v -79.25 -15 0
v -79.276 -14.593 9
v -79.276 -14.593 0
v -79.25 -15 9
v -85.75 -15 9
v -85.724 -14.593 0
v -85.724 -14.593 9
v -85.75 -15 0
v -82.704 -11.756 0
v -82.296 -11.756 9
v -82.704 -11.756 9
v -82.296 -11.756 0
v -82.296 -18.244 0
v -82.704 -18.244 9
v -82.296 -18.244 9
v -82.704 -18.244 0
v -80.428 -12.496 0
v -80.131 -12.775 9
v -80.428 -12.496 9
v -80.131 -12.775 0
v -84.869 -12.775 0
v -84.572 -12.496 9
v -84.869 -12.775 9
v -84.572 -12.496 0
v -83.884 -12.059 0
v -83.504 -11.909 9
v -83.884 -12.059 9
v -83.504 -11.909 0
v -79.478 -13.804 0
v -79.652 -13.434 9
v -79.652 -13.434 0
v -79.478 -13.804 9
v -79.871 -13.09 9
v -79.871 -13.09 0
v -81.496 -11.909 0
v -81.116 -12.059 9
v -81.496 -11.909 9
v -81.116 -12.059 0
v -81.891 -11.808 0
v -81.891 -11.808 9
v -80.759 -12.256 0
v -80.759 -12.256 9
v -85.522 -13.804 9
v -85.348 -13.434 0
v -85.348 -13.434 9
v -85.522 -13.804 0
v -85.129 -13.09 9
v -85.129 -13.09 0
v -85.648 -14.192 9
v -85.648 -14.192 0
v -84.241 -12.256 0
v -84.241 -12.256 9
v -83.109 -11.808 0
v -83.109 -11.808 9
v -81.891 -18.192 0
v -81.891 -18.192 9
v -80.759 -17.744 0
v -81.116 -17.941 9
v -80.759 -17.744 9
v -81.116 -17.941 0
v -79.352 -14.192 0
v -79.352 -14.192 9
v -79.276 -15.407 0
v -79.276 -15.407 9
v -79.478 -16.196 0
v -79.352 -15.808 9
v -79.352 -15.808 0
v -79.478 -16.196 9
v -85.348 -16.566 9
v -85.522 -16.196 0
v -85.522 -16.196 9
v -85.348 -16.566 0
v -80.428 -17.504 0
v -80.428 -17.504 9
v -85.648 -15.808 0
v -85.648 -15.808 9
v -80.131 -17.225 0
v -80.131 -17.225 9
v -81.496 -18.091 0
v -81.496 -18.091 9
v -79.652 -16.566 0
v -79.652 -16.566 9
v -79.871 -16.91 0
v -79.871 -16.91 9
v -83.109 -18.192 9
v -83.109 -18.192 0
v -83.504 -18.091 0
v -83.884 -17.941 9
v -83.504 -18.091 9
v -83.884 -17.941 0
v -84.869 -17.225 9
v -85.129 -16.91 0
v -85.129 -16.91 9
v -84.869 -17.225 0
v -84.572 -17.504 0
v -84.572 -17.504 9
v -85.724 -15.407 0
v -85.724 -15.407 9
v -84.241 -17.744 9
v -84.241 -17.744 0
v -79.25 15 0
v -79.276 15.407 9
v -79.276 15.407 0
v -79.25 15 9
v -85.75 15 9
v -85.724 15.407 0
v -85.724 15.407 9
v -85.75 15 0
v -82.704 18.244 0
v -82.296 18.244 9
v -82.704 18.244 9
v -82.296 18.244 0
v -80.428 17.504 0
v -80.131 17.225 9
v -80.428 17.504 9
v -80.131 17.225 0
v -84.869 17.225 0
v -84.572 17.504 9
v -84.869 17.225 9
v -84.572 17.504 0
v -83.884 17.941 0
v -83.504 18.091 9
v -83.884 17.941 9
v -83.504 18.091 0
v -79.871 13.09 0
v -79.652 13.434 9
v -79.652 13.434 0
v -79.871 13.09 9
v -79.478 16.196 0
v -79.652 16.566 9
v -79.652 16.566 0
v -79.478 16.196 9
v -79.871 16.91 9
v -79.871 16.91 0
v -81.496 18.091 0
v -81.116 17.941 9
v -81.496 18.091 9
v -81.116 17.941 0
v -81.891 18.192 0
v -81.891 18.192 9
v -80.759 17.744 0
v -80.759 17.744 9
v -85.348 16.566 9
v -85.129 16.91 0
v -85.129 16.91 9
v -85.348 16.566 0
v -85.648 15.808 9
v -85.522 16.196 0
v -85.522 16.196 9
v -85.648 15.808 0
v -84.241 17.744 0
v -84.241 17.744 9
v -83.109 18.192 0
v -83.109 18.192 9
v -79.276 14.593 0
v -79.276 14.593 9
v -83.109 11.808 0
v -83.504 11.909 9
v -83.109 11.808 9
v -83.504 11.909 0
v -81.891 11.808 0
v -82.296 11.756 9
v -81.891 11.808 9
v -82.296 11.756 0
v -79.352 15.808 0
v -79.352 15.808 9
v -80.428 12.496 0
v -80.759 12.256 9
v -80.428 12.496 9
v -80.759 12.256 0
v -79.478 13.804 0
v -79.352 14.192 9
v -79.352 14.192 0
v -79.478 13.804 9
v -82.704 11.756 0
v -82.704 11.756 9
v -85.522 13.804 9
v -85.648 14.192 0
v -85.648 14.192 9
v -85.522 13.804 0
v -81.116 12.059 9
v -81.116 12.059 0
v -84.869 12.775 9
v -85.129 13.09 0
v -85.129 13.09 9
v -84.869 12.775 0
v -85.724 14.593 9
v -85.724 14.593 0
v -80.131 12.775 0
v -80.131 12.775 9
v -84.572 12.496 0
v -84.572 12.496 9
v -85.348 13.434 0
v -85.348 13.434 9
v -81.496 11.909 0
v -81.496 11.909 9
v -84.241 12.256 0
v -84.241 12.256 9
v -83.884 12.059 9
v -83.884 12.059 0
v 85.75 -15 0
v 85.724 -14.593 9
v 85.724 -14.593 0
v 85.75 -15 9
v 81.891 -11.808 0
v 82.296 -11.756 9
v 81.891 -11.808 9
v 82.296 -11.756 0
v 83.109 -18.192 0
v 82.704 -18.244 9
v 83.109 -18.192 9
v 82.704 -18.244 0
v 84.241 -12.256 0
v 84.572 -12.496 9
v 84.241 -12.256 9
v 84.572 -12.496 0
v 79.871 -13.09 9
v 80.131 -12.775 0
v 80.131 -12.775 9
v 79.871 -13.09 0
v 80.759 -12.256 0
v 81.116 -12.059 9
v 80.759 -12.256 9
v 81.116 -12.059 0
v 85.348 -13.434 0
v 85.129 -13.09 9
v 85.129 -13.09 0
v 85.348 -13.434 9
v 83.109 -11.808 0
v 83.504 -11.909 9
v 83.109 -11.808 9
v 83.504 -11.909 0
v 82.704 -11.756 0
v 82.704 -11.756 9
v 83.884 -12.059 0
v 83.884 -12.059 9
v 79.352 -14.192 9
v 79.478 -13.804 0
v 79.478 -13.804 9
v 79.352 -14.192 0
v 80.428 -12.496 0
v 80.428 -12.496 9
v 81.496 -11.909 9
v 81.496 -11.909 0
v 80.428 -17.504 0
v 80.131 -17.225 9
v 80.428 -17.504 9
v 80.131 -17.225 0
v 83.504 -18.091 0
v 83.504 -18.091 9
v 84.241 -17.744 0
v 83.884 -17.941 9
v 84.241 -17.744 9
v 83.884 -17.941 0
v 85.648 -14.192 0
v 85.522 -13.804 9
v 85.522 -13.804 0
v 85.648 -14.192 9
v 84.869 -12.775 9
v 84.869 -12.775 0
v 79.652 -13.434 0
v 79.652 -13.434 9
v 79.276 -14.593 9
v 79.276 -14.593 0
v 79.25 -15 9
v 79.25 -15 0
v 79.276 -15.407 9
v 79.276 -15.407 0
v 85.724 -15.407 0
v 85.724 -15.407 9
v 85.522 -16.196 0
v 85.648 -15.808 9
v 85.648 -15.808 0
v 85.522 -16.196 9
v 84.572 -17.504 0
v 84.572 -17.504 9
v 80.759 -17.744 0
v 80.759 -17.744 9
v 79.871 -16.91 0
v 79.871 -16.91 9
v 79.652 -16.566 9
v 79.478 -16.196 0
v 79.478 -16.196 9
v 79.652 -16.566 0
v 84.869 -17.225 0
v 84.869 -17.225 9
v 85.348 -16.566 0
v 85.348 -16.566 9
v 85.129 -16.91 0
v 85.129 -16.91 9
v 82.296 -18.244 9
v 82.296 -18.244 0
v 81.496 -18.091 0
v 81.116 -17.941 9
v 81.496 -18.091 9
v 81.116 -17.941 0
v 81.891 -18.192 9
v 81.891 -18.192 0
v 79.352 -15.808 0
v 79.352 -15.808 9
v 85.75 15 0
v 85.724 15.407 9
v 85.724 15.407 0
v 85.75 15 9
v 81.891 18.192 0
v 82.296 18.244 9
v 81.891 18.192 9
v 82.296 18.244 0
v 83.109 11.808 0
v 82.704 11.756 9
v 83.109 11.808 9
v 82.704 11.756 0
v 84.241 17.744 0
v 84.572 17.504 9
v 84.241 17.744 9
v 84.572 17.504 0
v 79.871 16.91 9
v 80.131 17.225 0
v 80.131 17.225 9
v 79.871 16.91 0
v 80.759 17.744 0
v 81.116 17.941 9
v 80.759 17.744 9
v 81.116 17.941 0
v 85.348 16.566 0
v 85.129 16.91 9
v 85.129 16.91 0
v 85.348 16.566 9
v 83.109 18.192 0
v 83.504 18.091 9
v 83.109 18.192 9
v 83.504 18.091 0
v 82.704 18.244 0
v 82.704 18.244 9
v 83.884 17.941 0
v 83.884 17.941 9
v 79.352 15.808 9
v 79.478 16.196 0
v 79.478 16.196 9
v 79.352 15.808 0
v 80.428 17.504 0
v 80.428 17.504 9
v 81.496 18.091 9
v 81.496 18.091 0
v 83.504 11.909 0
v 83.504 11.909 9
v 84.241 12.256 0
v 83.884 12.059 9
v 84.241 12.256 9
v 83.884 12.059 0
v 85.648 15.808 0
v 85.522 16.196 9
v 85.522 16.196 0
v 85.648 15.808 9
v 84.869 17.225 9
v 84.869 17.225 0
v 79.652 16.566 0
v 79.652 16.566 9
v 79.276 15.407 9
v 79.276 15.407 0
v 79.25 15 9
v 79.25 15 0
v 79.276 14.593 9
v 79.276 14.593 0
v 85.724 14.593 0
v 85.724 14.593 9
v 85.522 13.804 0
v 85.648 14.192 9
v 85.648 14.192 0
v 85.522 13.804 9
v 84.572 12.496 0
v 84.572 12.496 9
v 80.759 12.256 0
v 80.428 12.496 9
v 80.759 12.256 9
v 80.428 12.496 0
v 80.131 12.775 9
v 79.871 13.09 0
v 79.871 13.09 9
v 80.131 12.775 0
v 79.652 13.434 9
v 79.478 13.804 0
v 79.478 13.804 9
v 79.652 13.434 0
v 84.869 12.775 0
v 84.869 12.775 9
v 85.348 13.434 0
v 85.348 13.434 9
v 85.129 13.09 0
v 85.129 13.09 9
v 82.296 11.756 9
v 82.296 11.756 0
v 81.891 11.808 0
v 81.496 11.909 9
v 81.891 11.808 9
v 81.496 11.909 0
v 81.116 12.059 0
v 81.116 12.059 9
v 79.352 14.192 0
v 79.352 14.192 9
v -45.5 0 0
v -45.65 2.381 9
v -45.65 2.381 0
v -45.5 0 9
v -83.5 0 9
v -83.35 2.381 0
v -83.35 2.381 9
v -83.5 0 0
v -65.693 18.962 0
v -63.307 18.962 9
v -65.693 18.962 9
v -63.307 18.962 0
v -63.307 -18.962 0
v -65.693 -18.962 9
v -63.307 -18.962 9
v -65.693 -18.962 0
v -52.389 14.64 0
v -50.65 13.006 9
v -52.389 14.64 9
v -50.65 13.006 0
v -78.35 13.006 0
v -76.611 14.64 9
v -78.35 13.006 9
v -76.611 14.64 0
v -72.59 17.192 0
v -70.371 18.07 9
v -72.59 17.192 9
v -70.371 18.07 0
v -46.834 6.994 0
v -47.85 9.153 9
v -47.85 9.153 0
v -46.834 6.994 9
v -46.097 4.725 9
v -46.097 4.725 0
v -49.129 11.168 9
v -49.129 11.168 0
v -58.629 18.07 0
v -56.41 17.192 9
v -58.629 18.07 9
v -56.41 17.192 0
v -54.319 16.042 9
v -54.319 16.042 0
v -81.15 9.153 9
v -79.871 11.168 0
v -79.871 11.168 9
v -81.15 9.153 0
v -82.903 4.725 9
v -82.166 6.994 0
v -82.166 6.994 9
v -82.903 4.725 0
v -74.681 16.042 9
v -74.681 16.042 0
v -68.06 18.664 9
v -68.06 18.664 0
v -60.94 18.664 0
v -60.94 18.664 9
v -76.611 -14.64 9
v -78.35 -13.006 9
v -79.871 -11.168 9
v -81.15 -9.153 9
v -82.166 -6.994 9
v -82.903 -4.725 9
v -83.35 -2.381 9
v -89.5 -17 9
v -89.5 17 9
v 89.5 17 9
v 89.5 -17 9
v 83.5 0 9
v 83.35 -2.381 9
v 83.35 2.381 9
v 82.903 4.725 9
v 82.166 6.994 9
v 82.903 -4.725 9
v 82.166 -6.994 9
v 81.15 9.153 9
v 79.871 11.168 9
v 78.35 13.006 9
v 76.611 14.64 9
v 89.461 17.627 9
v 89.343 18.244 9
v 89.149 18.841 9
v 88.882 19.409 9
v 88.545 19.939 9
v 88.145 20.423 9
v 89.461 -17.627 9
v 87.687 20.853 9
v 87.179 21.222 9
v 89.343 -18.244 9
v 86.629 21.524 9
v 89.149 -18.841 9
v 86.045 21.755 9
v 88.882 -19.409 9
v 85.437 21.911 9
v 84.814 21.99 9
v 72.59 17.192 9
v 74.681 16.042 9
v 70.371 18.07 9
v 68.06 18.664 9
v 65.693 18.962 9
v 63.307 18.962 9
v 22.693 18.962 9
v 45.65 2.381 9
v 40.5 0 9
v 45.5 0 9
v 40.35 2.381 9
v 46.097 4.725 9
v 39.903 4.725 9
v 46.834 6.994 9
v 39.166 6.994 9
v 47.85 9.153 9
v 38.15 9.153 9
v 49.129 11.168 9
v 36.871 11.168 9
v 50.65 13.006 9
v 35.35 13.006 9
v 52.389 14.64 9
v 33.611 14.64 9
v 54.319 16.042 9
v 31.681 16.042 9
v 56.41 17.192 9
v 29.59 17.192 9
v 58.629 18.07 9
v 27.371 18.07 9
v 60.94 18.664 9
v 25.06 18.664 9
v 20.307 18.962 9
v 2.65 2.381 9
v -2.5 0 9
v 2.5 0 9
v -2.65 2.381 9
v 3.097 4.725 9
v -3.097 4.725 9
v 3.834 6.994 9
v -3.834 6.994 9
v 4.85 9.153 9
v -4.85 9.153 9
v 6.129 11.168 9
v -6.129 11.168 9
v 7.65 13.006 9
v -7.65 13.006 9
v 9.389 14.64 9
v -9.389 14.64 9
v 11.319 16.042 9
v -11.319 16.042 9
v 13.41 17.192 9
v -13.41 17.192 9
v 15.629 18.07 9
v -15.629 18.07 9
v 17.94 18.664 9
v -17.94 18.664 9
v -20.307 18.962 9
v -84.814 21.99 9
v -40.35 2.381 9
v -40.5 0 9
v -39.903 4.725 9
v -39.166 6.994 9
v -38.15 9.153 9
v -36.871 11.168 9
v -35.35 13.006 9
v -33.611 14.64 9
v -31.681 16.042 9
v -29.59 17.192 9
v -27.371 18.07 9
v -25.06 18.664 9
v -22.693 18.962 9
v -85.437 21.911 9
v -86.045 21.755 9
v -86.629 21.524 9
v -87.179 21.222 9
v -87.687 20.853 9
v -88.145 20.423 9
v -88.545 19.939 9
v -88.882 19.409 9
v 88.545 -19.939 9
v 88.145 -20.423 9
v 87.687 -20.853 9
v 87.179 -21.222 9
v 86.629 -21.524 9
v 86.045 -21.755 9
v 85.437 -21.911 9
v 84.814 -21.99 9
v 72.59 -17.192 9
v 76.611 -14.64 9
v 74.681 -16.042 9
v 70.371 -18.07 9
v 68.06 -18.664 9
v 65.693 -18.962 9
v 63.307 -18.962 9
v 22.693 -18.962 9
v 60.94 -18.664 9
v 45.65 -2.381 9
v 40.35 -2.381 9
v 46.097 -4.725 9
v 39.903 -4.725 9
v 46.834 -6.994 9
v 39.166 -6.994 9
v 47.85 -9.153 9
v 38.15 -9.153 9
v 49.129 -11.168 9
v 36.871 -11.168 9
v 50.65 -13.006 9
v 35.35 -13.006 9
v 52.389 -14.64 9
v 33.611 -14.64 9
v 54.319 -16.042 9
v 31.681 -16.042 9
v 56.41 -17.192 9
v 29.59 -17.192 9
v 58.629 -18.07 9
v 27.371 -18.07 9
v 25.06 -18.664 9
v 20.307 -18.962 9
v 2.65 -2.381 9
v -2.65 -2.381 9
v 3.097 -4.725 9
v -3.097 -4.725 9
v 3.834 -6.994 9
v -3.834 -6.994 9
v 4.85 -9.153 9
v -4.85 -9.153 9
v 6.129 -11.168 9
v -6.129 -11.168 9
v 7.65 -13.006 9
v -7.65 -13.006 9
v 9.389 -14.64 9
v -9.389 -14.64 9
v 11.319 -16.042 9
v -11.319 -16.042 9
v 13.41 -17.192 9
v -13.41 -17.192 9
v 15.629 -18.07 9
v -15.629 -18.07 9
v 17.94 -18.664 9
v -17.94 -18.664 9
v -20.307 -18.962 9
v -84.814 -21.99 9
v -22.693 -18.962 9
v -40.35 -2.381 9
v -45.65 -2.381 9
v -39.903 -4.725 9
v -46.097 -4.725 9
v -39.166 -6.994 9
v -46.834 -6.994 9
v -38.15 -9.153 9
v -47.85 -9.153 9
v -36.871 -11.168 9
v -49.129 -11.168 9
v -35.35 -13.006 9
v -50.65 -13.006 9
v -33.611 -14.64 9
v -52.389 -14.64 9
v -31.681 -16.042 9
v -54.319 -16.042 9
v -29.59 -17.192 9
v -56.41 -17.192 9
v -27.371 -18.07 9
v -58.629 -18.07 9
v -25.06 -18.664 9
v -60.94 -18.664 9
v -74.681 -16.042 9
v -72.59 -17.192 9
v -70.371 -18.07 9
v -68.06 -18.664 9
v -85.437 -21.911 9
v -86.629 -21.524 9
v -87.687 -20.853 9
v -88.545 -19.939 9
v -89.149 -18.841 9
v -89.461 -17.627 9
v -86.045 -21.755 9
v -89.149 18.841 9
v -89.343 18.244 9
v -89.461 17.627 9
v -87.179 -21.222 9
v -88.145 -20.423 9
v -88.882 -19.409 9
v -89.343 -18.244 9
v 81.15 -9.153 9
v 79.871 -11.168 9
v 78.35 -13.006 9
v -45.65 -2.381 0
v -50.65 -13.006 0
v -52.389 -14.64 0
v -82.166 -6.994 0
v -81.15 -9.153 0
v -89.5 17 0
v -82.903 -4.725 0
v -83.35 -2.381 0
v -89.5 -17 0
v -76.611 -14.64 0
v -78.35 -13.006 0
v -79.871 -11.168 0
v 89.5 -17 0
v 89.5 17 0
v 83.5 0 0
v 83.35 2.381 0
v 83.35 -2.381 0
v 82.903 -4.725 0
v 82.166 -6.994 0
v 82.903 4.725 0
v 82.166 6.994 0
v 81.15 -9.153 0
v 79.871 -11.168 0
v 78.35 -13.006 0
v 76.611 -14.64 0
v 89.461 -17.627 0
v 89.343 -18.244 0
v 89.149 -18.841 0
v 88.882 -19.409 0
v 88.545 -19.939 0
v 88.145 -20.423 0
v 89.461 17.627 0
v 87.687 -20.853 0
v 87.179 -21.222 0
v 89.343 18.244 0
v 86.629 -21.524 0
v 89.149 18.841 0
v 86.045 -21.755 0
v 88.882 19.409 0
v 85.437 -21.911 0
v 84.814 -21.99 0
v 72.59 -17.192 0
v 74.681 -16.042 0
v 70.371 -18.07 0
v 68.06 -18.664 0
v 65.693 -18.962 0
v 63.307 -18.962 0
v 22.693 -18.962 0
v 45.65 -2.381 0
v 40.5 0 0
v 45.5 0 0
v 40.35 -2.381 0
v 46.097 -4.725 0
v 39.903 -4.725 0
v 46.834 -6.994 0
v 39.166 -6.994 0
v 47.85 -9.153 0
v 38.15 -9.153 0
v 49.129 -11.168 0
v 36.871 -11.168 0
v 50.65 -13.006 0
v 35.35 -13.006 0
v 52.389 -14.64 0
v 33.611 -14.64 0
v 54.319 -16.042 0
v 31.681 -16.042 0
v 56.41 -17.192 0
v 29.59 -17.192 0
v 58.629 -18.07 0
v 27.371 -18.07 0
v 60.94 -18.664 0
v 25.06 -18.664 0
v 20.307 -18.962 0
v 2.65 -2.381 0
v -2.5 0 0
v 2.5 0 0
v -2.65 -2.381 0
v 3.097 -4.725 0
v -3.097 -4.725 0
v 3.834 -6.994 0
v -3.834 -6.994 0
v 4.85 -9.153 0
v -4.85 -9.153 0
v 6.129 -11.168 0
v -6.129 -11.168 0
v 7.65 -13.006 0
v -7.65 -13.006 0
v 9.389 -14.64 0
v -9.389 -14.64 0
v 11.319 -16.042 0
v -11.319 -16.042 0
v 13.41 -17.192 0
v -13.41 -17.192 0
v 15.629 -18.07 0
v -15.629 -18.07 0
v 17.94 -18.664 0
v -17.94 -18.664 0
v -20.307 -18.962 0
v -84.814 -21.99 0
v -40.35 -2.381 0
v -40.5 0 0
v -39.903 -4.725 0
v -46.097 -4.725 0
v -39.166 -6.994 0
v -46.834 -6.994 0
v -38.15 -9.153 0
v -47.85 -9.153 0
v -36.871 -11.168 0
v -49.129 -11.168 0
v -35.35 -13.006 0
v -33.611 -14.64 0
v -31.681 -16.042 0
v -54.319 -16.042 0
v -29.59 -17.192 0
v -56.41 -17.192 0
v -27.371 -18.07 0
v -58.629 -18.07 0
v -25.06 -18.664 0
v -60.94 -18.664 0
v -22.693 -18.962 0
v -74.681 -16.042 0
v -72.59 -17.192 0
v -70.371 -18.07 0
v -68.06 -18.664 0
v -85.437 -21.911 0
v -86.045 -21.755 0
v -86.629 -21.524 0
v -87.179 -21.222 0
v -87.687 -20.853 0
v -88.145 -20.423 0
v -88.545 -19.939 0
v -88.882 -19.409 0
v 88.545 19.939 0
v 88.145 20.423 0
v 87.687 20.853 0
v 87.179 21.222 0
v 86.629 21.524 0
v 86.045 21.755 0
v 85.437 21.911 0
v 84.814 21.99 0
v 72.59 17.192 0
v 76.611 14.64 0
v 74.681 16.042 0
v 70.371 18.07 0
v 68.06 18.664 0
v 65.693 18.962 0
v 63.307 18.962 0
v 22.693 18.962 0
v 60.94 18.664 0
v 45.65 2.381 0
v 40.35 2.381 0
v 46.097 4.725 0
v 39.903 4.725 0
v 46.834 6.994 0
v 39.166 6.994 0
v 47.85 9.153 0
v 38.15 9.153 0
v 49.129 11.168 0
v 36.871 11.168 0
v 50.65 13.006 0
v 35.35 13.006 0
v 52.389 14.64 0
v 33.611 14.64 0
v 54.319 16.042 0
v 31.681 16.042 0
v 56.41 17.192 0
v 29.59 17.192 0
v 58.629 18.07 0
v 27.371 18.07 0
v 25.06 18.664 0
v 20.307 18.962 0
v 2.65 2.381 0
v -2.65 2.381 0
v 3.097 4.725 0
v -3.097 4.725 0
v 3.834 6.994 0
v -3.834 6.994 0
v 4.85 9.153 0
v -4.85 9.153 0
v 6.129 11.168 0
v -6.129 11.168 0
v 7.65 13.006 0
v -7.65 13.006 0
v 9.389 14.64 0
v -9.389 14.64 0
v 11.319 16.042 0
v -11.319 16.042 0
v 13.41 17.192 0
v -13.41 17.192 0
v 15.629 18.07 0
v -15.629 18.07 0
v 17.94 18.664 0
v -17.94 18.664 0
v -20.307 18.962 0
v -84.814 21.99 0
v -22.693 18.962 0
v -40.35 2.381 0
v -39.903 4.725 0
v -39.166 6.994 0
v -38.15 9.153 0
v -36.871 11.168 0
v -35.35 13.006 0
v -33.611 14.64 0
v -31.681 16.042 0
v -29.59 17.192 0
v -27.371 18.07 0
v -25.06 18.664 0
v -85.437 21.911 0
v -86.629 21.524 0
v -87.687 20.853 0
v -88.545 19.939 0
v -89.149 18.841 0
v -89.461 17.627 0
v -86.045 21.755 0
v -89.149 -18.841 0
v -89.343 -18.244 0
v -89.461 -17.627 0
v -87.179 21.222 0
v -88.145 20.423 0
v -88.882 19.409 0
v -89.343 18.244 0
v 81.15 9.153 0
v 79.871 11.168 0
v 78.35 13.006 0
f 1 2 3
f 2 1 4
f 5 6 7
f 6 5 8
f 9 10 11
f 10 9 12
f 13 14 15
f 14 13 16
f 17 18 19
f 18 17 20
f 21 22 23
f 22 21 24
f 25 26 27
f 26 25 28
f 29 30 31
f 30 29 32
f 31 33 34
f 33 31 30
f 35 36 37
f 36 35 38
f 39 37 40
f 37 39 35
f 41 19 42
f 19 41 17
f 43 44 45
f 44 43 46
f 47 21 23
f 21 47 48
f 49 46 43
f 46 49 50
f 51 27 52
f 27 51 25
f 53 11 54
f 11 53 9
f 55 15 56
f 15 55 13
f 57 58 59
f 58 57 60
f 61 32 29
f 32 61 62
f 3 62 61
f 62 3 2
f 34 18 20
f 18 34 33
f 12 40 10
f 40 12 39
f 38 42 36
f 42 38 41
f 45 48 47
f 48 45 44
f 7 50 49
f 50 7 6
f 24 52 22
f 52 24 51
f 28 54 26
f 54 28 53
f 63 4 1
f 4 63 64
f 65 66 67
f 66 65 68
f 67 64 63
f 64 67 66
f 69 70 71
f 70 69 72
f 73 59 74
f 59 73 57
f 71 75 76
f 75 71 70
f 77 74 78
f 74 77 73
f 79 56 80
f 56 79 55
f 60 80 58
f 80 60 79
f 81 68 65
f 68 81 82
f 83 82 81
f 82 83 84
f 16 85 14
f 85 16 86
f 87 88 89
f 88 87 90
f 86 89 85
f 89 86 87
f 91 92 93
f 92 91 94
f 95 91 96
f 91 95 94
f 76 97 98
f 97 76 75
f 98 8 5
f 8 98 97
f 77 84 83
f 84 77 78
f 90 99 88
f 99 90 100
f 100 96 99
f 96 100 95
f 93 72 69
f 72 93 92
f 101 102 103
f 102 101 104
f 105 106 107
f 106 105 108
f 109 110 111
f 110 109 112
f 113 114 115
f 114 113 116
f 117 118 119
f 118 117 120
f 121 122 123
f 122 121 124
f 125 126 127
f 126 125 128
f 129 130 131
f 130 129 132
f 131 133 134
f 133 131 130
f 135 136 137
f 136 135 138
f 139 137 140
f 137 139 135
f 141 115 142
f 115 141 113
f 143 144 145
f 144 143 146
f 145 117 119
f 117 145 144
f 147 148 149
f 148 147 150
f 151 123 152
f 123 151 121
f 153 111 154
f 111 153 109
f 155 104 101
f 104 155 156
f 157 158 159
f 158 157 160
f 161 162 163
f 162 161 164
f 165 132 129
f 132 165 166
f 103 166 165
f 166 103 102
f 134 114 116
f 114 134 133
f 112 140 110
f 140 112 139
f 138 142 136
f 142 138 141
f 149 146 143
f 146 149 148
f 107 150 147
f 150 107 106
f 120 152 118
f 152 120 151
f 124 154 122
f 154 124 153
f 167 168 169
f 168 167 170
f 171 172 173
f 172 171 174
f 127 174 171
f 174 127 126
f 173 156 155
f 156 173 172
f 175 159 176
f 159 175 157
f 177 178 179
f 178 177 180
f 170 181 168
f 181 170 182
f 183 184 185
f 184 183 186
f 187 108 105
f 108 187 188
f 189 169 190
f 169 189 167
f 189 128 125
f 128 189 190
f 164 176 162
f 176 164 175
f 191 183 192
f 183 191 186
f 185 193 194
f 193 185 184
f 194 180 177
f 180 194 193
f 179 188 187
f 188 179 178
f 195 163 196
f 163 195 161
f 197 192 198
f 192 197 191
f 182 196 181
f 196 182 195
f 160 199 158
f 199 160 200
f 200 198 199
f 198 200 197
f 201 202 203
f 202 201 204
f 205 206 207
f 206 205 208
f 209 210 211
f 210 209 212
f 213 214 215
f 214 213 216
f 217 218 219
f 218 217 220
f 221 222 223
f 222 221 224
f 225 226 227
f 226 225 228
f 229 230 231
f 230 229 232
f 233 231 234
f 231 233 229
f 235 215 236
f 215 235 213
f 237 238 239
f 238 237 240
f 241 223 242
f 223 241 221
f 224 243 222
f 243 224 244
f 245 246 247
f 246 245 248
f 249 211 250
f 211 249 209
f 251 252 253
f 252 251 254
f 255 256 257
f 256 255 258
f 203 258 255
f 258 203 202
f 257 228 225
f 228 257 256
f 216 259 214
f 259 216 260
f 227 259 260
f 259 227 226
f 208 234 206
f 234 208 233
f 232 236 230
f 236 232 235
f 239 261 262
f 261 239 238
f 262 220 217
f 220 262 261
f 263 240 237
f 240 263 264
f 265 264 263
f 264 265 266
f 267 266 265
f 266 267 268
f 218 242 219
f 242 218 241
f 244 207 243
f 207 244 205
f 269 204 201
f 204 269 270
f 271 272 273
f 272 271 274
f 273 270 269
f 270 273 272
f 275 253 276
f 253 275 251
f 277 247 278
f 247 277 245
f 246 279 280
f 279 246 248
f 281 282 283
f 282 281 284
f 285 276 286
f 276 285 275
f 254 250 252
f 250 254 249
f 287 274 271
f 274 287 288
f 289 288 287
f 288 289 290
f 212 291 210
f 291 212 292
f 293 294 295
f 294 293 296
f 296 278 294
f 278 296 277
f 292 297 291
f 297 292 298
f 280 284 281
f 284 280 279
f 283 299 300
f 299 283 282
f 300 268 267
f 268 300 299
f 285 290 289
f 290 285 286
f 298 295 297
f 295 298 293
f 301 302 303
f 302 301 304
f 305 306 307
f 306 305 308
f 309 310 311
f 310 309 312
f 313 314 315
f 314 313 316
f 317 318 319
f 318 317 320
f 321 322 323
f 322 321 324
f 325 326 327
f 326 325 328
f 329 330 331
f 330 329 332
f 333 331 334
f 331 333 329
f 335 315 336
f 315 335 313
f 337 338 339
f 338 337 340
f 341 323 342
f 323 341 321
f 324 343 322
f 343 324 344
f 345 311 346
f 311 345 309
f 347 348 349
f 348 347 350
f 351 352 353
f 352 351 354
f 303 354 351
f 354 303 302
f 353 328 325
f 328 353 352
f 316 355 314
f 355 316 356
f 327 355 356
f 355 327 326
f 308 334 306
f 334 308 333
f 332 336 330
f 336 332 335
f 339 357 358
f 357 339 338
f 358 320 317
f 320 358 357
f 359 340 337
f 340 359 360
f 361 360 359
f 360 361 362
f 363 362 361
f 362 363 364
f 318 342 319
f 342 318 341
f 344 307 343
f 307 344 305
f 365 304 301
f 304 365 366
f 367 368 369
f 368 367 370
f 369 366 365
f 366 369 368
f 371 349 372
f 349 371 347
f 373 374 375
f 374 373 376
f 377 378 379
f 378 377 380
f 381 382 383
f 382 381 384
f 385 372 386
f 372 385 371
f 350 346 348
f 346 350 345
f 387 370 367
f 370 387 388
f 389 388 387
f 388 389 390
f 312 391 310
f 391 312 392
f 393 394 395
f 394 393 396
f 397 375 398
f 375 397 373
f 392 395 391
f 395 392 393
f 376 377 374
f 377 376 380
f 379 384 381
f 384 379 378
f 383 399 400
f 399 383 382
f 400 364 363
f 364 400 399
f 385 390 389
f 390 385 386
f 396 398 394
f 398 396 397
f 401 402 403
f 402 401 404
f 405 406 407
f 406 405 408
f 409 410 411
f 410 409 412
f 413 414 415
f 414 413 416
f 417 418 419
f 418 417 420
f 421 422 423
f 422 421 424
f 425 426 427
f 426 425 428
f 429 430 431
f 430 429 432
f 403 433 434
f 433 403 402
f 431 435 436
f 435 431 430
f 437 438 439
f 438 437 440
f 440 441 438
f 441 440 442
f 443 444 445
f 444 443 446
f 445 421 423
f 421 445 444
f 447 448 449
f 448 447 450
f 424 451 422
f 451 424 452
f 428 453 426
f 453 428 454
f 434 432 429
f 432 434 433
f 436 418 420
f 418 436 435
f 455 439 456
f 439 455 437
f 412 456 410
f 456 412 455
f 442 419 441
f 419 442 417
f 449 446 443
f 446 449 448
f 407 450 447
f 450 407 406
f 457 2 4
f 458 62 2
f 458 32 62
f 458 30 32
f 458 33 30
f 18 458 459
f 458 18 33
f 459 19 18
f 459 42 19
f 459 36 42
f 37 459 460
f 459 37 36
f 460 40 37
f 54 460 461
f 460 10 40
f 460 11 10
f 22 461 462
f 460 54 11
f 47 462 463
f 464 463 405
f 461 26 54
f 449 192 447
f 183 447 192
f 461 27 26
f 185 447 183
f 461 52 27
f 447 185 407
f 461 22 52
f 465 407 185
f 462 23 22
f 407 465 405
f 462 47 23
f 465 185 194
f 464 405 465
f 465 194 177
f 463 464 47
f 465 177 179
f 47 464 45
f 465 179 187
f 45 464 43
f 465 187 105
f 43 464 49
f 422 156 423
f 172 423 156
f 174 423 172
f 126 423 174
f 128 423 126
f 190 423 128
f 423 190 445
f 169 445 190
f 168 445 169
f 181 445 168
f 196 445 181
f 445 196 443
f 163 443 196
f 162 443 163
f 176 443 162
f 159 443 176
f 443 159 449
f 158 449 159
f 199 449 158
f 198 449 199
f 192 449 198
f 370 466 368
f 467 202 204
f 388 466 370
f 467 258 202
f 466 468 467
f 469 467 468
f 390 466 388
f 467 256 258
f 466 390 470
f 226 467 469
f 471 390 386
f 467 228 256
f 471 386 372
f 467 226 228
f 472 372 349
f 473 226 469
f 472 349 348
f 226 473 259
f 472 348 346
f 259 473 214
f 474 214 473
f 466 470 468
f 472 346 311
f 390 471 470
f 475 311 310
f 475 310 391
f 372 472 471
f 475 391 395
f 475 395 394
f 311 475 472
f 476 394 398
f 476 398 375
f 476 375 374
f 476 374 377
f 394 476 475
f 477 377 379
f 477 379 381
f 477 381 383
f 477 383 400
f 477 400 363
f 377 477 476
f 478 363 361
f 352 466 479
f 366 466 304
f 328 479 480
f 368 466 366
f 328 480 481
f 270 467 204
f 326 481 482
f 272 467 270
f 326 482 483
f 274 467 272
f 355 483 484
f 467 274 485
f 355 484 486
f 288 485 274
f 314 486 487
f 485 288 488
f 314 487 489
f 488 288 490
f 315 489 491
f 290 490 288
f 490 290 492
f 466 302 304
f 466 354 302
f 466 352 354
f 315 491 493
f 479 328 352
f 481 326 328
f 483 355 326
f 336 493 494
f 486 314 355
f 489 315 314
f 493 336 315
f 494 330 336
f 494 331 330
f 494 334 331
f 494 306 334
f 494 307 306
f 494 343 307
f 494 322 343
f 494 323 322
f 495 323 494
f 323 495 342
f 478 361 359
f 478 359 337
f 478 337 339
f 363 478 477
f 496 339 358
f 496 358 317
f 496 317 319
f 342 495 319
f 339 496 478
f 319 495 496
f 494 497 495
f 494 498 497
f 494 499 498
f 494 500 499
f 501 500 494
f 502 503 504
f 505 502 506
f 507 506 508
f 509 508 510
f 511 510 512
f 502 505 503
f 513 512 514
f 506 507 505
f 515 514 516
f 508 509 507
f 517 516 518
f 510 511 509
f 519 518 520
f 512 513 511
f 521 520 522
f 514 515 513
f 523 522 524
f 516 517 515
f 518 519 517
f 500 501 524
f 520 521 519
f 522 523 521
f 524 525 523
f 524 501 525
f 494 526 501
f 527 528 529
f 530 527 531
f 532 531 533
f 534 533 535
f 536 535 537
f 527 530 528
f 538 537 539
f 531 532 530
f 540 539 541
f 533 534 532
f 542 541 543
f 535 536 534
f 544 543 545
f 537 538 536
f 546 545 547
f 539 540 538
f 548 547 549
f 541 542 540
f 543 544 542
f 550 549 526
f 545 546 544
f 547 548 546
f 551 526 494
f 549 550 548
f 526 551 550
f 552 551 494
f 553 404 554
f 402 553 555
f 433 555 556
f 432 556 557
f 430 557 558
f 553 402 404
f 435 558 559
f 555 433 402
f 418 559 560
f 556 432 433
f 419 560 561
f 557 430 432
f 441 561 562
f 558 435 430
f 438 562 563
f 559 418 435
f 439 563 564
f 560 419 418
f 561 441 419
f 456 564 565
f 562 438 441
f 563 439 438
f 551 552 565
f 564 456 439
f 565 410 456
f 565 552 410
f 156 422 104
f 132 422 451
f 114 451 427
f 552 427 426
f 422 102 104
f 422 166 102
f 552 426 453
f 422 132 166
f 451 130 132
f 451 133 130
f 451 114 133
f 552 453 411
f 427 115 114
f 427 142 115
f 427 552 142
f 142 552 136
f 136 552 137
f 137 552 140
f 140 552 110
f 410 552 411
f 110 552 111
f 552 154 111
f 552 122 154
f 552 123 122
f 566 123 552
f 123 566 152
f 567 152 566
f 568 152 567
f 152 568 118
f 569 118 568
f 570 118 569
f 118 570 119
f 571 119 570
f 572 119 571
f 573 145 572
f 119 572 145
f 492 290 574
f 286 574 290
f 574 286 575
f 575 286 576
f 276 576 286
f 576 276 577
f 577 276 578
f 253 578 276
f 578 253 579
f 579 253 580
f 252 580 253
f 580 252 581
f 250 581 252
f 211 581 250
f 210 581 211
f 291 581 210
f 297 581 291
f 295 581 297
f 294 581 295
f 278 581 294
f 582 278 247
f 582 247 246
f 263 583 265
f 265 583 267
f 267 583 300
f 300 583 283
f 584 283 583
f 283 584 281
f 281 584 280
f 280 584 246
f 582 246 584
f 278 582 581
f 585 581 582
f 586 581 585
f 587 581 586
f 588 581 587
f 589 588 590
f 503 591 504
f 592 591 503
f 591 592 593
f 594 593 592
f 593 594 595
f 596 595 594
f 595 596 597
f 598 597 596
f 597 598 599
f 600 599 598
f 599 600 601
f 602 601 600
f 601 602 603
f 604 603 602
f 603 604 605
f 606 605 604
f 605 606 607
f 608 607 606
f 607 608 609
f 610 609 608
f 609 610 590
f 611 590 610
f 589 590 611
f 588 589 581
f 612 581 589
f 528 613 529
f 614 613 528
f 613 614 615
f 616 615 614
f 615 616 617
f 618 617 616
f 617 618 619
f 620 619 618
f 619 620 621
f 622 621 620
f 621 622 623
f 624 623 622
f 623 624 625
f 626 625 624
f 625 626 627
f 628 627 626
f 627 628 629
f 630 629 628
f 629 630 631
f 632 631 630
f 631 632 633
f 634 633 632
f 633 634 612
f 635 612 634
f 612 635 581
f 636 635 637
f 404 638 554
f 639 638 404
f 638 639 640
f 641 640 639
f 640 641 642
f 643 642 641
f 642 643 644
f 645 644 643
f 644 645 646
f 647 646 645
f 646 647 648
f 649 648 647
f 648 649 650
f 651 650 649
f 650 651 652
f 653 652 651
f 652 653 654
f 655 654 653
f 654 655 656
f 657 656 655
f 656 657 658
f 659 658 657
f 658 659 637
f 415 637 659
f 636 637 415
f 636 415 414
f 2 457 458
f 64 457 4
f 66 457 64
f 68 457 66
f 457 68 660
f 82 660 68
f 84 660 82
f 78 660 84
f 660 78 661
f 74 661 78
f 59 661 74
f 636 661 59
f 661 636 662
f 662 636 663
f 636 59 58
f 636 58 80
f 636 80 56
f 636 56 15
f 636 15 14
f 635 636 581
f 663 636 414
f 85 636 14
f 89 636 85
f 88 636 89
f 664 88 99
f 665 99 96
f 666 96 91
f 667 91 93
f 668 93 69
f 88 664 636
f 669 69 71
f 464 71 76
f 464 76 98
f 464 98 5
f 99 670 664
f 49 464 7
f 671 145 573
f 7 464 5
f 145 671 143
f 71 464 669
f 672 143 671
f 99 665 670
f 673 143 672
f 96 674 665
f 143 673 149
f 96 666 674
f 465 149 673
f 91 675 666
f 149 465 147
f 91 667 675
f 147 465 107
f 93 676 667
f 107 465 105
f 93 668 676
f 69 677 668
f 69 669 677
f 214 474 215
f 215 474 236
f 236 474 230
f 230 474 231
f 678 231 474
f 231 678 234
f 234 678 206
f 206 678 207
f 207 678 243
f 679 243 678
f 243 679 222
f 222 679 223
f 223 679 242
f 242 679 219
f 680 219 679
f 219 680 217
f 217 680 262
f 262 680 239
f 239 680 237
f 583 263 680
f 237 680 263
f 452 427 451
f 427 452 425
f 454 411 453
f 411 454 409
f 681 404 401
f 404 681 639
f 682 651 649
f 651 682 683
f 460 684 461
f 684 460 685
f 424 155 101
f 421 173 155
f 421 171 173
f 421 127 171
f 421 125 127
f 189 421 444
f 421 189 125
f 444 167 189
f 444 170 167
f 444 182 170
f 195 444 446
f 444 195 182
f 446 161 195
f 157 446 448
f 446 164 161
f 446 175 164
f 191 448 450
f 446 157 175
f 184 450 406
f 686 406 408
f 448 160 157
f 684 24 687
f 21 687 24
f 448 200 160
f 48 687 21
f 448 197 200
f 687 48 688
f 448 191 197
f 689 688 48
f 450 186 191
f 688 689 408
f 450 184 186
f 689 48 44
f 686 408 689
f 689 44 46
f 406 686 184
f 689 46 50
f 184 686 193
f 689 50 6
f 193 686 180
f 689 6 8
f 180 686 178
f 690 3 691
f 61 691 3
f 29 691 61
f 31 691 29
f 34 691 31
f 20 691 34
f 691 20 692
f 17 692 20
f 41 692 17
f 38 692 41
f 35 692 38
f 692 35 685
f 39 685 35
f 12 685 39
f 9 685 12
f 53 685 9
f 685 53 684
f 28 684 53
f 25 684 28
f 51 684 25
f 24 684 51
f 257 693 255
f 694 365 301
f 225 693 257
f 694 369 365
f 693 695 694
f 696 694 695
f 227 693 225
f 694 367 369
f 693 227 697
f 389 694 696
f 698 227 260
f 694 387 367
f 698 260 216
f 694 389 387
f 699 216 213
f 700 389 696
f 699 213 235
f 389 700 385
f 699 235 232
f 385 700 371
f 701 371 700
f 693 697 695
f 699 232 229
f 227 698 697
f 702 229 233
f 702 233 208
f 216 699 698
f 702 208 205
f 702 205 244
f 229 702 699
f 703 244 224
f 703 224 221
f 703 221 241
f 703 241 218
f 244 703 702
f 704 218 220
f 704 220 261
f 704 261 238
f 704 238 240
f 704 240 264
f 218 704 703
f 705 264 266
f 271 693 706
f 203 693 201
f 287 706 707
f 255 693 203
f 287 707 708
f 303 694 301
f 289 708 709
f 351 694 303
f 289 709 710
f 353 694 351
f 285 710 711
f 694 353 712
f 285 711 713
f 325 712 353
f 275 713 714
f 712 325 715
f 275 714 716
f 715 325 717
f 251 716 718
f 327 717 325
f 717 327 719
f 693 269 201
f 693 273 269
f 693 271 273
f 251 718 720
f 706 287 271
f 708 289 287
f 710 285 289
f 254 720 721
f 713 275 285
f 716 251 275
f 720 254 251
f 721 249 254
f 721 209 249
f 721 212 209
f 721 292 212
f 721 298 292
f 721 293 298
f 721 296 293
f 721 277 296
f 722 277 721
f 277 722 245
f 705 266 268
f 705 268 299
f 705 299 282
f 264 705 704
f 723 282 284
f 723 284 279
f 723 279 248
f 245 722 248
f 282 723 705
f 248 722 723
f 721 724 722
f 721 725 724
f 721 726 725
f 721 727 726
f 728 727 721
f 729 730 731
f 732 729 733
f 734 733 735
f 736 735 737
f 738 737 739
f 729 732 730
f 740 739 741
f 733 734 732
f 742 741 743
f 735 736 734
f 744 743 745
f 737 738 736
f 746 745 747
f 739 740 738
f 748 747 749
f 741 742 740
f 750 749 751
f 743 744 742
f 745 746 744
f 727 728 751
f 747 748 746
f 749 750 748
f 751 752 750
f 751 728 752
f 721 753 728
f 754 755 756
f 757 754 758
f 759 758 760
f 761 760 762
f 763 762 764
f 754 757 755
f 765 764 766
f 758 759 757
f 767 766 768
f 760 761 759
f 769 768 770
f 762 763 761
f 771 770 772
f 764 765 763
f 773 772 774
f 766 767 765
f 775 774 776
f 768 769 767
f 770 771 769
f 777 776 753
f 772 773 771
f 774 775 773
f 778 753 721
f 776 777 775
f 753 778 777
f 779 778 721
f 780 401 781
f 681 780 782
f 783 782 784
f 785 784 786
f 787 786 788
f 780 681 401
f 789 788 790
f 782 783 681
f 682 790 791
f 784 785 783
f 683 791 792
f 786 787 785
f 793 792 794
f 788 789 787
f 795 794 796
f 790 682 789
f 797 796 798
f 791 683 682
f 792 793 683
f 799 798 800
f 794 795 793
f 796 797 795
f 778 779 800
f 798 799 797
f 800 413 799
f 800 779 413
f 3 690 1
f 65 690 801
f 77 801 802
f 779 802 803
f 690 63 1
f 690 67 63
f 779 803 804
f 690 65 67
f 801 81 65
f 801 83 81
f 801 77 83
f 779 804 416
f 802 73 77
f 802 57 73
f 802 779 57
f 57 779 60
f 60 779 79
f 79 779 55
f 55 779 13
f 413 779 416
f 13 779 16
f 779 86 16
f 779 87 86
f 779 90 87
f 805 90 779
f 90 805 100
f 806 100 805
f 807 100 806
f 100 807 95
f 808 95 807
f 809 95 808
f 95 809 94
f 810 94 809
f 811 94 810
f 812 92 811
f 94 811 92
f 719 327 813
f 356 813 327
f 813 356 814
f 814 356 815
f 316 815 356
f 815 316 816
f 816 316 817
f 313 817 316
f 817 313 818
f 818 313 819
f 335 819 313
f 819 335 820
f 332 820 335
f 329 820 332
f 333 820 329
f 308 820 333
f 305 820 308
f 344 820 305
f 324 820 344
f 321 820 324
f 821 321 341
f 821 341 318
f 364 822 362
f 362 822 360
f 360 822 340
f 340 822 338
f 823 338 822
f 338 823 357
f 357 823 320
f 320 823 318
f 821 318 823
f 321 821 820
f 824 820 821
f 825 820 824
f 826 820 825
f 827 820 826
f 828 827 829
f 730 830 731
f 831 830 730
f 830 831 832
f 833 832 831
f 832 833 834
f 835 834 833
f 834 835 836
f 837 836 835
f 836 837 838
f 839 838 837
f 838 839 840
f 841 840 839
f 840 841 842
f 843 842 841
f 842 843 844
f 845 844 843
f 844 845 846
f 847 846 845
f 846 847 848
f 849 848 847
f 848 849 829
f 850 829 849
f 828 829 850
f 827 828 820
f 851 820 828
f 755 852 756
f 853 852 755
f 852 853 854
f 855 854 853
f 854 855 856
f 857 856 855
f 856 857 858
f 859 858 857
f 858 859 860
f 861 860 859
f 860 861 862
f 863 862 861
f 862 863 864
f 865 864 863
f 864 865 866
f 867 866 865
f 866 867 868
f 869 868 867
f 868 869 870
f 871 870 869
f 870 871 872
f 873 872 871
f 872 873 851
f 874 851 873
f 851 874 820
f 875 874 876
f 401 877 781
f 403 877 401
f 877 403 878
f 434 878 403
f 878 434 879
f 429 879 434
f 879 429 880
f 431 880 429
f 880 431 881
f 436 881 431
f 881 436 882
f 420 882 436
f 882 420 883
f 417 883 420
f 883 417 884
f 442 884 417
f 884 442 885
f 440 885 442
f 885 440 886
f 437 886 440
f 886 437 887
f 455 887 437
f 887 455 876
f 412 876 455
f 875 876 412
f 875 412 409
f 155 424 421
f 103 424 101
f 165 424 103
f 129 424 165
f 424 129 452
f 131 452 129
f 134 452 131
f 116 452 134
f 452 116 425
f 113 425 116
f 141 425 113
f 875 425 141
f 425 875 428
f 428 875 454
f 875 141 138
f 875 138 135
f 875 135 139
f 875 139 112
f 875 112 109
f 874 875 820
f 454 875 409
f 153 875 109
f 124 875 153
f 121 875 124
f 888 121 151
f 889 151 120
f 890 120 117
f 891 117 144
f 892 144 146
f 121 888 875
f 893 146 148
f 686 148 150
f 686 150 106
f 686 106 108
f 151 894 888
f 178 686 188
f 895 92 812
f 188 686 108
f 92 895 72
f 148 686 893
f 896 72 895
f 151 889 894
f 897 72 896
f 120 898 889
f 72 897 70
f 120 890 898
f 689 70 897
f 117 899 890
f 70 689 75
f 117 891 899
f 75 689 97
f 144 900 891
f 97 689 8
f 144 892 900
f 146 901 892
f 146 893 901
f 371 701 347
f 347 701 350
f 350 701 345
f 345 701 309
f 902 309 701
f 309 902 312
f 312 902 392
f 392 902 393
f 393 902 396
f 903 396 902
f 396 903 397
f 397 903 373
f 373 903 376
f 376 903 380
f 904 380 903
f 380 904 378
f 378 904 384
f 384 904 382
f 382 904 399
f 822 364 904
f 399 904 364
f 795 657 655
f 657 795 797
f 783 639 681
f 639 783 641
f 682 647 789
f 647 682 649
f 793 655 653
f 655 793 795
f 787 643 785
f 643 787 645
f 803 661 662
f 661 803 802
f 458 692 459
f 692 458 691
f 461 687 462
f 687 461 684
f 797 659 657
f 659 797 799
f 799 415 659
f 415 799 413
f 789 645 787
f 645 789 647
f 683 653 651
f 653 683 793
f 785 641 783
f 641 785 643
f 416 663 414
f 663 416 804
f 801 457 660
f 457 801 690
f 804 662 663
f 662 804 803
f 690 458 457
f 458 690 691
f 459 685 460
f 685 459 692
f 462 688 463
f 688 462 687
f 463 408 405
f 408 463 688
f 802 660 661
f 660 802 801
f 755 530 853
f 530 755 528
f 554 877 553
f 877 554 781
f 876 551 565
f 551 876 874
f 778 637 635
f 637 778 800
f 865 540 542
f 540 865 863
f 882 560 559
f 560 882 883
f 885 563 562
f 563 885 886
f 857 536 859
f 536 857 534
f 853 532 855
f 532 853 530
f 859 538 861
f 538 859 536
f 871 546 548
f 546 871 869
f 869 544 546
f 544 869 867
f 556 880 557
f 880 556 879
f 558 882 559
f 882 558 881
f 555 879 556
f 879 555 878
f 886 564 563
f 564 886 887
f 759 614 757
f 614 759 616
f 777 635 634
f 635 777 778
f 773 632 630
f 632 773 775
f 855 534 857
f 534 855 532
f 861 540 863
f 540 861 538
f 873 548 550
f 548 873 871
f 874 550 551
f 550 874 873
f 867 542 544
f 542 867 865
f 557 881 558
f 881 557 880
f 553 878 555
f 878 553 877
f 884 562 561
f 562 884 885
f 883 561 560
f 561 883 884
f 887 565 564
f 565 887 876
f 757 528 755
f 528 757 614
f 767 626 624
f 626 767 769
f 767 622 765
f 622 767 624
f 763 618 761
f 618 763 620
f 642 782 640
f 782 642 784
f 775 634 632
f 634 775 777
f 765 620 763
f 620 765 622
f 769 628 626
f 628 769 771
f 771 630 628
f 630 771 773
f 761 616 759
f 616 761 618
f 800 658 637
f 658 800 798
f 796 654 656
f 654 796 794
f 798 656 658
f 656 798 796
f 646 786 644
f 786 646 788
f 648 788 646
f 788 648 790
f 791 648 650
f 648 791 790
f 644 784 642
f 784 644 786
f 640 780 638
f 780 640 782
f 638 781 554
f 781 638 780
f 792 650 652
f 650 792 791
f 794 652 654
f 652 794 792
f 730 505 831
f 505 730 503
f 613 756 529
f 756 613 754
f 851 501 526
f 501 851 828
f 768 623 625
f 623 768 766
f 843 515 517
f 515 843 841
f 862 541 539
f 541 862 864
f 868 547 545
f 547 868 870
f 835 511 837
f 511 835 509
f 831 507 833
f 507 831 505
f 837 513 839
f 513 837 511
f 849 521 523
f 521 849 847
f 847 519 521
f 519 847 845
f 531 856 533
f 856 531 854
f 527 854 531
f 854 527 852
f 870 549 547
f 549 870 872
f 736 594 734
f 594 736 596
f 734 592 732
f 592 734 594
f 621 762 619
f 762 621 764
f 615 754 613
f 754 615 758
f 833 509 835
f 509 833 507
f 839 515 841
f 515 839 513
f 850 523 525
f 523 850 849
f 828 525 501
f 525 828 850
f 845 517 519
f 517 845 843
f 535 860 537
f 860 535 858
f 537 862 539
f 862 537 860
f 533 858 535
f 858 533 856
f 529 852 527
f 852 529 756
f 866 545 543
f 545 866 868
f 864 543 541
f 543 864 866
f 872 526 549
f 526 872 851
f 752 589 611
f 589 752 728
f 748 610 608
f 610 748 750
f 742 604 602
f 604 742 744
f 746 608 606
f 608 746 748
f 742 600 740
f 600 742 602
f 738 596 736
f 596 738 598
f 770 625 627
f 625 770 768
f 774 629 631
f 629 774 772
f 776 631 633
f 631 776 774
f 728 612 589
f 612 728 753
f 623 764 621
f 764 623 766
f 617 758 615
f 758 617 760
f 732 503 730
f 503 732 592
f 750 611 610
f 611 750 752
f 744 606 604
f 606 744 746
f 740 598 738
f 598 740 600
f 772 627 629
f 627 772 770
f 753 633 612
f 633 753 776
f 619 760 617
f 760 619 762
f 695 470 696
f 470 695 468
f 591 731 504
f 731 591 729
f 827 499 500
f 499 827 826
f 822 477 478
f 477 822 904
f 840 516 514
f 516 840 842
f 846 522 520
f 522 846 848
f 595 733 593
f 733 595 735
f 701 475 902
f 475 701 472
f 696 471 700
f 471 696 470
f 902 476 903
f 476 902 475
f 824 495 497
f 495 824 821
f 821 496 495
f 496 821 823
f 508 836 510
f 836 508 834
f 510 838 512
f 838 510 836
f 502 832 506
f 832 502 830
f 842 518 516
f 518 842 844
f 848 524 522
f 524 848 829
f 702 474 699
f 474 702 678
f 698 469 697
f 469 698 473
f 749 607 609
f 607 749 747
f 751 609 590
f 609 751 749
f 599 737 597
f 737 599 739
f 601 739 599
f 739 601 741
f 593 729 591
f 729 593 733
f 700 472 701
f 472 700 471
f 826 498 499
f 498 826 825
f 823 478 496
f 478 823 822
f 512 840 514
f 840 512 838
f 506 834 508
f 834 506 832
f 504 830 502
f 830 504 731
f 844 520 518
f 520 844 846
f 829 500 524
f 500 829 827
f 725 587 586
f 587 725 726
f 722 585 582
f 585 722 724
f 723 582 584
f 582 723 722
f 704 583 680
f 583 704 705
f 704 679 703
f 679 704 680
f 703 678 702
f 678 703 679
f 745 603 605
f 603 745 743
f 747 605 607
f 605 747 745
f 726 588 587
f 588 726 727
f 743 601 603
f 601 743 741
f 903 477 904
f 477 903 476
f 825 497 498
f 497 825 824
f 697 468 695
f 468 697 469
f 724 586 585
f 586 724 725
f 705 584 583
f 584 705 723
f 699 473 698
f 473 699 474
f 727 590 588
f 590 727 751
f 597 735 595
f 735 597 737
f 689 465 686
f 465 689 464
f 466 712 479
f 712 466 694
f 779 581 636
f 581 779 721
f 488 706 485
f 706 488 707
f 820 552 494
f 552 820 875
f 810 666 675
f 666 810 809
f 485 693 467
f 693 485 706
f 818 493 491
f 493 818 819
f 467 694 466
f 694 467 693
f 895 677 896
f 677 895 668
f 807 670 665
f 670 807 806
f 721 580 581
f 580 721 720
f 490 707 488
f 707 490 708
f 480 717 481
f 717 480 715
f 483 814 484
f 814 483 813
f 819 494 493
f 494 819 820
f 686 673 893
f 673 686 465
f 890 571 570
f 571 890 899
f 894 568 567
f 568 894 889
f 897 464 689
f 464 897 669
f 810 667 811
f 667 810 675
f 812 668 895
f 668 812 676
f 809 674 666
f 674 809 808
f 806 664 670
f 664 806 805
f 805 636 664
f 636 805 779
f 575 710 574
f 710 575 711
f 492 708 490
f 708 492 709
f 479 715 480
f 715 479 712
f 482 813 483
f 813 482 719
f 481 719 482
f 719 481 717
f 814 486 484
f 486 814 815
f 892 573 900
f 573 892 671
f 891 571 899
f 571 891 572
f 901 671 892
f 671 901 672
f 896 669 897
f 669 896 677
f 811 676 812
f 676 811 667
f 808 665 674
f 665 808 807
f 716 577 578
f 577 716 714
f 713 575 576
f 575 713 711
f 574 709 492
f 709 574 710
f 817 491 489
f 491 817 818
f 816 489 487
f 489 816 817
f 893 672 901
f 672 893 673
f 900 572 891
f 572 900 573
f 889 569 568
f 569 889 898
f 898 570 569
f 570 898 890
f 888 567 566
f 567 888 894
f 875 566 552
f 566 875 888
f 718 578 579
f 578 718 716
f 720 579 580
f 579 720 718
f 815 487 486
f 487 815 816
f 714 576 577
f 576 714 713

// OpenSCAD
$fn = 50;


difference() {
	union() {
		hull() {
			translate(v = [-84.5000000000, 17.0000000000, 0]) {
				cylinder(h = 9, r = 5);
			}
			translate(v = [84.5000000000, 17.0000000000, 0]) {
				cylinder(h = 9, r = 5);
			}
			translate(v = [-84.5000000000, -17.0000000000, 0]) {
				cylinder(h = 9, r = 5);
			}
			translate(v = [84.5000000000, -17.0000000000, 0]) {
				cylinder(h = 9, r = 5);
			}
		}
	}
	union() {
		#translate(v = [-82.5000000000, -15.0000000000, -100.0000000000]) {
			cylinder(h = 200, r = 3.2500000000);
		}
		#translate(v = [-82.5000000000, 15.0000000000, -100.0000000000]) {
			cylinder(h = 200, r = 3.2500000000);
		}
		#translate(v = [82.5000000000, -15.0000000000, -100.0000000000]) {
			cylinder(h = 200, r = 3.2500000000);
		}
		#translate(v = [82.5000000000, 15.0000000000, -100.0000000000]) {
			cylinder(h = 200, r = 3.2500000000);
		}
		#translate(v = [-64.5000000000, 0, 0]) {
			cylinder(h = 9, r = 19.0000000000);
		}
		#translate(v = [-21.5000000000, 0, 0]) {
			cylinder(h = 9, r = 19.0000000000);
		}
		#translate(v = [21.5000000000, 0, 0]) {
			cylinder(h = 9, r = 19.0000000000);
		}
		#translate(v = [64.5000000000, 0, 0]) {
			cylinder(h = 9, r = 19.0000000000);
		}
	}
}
